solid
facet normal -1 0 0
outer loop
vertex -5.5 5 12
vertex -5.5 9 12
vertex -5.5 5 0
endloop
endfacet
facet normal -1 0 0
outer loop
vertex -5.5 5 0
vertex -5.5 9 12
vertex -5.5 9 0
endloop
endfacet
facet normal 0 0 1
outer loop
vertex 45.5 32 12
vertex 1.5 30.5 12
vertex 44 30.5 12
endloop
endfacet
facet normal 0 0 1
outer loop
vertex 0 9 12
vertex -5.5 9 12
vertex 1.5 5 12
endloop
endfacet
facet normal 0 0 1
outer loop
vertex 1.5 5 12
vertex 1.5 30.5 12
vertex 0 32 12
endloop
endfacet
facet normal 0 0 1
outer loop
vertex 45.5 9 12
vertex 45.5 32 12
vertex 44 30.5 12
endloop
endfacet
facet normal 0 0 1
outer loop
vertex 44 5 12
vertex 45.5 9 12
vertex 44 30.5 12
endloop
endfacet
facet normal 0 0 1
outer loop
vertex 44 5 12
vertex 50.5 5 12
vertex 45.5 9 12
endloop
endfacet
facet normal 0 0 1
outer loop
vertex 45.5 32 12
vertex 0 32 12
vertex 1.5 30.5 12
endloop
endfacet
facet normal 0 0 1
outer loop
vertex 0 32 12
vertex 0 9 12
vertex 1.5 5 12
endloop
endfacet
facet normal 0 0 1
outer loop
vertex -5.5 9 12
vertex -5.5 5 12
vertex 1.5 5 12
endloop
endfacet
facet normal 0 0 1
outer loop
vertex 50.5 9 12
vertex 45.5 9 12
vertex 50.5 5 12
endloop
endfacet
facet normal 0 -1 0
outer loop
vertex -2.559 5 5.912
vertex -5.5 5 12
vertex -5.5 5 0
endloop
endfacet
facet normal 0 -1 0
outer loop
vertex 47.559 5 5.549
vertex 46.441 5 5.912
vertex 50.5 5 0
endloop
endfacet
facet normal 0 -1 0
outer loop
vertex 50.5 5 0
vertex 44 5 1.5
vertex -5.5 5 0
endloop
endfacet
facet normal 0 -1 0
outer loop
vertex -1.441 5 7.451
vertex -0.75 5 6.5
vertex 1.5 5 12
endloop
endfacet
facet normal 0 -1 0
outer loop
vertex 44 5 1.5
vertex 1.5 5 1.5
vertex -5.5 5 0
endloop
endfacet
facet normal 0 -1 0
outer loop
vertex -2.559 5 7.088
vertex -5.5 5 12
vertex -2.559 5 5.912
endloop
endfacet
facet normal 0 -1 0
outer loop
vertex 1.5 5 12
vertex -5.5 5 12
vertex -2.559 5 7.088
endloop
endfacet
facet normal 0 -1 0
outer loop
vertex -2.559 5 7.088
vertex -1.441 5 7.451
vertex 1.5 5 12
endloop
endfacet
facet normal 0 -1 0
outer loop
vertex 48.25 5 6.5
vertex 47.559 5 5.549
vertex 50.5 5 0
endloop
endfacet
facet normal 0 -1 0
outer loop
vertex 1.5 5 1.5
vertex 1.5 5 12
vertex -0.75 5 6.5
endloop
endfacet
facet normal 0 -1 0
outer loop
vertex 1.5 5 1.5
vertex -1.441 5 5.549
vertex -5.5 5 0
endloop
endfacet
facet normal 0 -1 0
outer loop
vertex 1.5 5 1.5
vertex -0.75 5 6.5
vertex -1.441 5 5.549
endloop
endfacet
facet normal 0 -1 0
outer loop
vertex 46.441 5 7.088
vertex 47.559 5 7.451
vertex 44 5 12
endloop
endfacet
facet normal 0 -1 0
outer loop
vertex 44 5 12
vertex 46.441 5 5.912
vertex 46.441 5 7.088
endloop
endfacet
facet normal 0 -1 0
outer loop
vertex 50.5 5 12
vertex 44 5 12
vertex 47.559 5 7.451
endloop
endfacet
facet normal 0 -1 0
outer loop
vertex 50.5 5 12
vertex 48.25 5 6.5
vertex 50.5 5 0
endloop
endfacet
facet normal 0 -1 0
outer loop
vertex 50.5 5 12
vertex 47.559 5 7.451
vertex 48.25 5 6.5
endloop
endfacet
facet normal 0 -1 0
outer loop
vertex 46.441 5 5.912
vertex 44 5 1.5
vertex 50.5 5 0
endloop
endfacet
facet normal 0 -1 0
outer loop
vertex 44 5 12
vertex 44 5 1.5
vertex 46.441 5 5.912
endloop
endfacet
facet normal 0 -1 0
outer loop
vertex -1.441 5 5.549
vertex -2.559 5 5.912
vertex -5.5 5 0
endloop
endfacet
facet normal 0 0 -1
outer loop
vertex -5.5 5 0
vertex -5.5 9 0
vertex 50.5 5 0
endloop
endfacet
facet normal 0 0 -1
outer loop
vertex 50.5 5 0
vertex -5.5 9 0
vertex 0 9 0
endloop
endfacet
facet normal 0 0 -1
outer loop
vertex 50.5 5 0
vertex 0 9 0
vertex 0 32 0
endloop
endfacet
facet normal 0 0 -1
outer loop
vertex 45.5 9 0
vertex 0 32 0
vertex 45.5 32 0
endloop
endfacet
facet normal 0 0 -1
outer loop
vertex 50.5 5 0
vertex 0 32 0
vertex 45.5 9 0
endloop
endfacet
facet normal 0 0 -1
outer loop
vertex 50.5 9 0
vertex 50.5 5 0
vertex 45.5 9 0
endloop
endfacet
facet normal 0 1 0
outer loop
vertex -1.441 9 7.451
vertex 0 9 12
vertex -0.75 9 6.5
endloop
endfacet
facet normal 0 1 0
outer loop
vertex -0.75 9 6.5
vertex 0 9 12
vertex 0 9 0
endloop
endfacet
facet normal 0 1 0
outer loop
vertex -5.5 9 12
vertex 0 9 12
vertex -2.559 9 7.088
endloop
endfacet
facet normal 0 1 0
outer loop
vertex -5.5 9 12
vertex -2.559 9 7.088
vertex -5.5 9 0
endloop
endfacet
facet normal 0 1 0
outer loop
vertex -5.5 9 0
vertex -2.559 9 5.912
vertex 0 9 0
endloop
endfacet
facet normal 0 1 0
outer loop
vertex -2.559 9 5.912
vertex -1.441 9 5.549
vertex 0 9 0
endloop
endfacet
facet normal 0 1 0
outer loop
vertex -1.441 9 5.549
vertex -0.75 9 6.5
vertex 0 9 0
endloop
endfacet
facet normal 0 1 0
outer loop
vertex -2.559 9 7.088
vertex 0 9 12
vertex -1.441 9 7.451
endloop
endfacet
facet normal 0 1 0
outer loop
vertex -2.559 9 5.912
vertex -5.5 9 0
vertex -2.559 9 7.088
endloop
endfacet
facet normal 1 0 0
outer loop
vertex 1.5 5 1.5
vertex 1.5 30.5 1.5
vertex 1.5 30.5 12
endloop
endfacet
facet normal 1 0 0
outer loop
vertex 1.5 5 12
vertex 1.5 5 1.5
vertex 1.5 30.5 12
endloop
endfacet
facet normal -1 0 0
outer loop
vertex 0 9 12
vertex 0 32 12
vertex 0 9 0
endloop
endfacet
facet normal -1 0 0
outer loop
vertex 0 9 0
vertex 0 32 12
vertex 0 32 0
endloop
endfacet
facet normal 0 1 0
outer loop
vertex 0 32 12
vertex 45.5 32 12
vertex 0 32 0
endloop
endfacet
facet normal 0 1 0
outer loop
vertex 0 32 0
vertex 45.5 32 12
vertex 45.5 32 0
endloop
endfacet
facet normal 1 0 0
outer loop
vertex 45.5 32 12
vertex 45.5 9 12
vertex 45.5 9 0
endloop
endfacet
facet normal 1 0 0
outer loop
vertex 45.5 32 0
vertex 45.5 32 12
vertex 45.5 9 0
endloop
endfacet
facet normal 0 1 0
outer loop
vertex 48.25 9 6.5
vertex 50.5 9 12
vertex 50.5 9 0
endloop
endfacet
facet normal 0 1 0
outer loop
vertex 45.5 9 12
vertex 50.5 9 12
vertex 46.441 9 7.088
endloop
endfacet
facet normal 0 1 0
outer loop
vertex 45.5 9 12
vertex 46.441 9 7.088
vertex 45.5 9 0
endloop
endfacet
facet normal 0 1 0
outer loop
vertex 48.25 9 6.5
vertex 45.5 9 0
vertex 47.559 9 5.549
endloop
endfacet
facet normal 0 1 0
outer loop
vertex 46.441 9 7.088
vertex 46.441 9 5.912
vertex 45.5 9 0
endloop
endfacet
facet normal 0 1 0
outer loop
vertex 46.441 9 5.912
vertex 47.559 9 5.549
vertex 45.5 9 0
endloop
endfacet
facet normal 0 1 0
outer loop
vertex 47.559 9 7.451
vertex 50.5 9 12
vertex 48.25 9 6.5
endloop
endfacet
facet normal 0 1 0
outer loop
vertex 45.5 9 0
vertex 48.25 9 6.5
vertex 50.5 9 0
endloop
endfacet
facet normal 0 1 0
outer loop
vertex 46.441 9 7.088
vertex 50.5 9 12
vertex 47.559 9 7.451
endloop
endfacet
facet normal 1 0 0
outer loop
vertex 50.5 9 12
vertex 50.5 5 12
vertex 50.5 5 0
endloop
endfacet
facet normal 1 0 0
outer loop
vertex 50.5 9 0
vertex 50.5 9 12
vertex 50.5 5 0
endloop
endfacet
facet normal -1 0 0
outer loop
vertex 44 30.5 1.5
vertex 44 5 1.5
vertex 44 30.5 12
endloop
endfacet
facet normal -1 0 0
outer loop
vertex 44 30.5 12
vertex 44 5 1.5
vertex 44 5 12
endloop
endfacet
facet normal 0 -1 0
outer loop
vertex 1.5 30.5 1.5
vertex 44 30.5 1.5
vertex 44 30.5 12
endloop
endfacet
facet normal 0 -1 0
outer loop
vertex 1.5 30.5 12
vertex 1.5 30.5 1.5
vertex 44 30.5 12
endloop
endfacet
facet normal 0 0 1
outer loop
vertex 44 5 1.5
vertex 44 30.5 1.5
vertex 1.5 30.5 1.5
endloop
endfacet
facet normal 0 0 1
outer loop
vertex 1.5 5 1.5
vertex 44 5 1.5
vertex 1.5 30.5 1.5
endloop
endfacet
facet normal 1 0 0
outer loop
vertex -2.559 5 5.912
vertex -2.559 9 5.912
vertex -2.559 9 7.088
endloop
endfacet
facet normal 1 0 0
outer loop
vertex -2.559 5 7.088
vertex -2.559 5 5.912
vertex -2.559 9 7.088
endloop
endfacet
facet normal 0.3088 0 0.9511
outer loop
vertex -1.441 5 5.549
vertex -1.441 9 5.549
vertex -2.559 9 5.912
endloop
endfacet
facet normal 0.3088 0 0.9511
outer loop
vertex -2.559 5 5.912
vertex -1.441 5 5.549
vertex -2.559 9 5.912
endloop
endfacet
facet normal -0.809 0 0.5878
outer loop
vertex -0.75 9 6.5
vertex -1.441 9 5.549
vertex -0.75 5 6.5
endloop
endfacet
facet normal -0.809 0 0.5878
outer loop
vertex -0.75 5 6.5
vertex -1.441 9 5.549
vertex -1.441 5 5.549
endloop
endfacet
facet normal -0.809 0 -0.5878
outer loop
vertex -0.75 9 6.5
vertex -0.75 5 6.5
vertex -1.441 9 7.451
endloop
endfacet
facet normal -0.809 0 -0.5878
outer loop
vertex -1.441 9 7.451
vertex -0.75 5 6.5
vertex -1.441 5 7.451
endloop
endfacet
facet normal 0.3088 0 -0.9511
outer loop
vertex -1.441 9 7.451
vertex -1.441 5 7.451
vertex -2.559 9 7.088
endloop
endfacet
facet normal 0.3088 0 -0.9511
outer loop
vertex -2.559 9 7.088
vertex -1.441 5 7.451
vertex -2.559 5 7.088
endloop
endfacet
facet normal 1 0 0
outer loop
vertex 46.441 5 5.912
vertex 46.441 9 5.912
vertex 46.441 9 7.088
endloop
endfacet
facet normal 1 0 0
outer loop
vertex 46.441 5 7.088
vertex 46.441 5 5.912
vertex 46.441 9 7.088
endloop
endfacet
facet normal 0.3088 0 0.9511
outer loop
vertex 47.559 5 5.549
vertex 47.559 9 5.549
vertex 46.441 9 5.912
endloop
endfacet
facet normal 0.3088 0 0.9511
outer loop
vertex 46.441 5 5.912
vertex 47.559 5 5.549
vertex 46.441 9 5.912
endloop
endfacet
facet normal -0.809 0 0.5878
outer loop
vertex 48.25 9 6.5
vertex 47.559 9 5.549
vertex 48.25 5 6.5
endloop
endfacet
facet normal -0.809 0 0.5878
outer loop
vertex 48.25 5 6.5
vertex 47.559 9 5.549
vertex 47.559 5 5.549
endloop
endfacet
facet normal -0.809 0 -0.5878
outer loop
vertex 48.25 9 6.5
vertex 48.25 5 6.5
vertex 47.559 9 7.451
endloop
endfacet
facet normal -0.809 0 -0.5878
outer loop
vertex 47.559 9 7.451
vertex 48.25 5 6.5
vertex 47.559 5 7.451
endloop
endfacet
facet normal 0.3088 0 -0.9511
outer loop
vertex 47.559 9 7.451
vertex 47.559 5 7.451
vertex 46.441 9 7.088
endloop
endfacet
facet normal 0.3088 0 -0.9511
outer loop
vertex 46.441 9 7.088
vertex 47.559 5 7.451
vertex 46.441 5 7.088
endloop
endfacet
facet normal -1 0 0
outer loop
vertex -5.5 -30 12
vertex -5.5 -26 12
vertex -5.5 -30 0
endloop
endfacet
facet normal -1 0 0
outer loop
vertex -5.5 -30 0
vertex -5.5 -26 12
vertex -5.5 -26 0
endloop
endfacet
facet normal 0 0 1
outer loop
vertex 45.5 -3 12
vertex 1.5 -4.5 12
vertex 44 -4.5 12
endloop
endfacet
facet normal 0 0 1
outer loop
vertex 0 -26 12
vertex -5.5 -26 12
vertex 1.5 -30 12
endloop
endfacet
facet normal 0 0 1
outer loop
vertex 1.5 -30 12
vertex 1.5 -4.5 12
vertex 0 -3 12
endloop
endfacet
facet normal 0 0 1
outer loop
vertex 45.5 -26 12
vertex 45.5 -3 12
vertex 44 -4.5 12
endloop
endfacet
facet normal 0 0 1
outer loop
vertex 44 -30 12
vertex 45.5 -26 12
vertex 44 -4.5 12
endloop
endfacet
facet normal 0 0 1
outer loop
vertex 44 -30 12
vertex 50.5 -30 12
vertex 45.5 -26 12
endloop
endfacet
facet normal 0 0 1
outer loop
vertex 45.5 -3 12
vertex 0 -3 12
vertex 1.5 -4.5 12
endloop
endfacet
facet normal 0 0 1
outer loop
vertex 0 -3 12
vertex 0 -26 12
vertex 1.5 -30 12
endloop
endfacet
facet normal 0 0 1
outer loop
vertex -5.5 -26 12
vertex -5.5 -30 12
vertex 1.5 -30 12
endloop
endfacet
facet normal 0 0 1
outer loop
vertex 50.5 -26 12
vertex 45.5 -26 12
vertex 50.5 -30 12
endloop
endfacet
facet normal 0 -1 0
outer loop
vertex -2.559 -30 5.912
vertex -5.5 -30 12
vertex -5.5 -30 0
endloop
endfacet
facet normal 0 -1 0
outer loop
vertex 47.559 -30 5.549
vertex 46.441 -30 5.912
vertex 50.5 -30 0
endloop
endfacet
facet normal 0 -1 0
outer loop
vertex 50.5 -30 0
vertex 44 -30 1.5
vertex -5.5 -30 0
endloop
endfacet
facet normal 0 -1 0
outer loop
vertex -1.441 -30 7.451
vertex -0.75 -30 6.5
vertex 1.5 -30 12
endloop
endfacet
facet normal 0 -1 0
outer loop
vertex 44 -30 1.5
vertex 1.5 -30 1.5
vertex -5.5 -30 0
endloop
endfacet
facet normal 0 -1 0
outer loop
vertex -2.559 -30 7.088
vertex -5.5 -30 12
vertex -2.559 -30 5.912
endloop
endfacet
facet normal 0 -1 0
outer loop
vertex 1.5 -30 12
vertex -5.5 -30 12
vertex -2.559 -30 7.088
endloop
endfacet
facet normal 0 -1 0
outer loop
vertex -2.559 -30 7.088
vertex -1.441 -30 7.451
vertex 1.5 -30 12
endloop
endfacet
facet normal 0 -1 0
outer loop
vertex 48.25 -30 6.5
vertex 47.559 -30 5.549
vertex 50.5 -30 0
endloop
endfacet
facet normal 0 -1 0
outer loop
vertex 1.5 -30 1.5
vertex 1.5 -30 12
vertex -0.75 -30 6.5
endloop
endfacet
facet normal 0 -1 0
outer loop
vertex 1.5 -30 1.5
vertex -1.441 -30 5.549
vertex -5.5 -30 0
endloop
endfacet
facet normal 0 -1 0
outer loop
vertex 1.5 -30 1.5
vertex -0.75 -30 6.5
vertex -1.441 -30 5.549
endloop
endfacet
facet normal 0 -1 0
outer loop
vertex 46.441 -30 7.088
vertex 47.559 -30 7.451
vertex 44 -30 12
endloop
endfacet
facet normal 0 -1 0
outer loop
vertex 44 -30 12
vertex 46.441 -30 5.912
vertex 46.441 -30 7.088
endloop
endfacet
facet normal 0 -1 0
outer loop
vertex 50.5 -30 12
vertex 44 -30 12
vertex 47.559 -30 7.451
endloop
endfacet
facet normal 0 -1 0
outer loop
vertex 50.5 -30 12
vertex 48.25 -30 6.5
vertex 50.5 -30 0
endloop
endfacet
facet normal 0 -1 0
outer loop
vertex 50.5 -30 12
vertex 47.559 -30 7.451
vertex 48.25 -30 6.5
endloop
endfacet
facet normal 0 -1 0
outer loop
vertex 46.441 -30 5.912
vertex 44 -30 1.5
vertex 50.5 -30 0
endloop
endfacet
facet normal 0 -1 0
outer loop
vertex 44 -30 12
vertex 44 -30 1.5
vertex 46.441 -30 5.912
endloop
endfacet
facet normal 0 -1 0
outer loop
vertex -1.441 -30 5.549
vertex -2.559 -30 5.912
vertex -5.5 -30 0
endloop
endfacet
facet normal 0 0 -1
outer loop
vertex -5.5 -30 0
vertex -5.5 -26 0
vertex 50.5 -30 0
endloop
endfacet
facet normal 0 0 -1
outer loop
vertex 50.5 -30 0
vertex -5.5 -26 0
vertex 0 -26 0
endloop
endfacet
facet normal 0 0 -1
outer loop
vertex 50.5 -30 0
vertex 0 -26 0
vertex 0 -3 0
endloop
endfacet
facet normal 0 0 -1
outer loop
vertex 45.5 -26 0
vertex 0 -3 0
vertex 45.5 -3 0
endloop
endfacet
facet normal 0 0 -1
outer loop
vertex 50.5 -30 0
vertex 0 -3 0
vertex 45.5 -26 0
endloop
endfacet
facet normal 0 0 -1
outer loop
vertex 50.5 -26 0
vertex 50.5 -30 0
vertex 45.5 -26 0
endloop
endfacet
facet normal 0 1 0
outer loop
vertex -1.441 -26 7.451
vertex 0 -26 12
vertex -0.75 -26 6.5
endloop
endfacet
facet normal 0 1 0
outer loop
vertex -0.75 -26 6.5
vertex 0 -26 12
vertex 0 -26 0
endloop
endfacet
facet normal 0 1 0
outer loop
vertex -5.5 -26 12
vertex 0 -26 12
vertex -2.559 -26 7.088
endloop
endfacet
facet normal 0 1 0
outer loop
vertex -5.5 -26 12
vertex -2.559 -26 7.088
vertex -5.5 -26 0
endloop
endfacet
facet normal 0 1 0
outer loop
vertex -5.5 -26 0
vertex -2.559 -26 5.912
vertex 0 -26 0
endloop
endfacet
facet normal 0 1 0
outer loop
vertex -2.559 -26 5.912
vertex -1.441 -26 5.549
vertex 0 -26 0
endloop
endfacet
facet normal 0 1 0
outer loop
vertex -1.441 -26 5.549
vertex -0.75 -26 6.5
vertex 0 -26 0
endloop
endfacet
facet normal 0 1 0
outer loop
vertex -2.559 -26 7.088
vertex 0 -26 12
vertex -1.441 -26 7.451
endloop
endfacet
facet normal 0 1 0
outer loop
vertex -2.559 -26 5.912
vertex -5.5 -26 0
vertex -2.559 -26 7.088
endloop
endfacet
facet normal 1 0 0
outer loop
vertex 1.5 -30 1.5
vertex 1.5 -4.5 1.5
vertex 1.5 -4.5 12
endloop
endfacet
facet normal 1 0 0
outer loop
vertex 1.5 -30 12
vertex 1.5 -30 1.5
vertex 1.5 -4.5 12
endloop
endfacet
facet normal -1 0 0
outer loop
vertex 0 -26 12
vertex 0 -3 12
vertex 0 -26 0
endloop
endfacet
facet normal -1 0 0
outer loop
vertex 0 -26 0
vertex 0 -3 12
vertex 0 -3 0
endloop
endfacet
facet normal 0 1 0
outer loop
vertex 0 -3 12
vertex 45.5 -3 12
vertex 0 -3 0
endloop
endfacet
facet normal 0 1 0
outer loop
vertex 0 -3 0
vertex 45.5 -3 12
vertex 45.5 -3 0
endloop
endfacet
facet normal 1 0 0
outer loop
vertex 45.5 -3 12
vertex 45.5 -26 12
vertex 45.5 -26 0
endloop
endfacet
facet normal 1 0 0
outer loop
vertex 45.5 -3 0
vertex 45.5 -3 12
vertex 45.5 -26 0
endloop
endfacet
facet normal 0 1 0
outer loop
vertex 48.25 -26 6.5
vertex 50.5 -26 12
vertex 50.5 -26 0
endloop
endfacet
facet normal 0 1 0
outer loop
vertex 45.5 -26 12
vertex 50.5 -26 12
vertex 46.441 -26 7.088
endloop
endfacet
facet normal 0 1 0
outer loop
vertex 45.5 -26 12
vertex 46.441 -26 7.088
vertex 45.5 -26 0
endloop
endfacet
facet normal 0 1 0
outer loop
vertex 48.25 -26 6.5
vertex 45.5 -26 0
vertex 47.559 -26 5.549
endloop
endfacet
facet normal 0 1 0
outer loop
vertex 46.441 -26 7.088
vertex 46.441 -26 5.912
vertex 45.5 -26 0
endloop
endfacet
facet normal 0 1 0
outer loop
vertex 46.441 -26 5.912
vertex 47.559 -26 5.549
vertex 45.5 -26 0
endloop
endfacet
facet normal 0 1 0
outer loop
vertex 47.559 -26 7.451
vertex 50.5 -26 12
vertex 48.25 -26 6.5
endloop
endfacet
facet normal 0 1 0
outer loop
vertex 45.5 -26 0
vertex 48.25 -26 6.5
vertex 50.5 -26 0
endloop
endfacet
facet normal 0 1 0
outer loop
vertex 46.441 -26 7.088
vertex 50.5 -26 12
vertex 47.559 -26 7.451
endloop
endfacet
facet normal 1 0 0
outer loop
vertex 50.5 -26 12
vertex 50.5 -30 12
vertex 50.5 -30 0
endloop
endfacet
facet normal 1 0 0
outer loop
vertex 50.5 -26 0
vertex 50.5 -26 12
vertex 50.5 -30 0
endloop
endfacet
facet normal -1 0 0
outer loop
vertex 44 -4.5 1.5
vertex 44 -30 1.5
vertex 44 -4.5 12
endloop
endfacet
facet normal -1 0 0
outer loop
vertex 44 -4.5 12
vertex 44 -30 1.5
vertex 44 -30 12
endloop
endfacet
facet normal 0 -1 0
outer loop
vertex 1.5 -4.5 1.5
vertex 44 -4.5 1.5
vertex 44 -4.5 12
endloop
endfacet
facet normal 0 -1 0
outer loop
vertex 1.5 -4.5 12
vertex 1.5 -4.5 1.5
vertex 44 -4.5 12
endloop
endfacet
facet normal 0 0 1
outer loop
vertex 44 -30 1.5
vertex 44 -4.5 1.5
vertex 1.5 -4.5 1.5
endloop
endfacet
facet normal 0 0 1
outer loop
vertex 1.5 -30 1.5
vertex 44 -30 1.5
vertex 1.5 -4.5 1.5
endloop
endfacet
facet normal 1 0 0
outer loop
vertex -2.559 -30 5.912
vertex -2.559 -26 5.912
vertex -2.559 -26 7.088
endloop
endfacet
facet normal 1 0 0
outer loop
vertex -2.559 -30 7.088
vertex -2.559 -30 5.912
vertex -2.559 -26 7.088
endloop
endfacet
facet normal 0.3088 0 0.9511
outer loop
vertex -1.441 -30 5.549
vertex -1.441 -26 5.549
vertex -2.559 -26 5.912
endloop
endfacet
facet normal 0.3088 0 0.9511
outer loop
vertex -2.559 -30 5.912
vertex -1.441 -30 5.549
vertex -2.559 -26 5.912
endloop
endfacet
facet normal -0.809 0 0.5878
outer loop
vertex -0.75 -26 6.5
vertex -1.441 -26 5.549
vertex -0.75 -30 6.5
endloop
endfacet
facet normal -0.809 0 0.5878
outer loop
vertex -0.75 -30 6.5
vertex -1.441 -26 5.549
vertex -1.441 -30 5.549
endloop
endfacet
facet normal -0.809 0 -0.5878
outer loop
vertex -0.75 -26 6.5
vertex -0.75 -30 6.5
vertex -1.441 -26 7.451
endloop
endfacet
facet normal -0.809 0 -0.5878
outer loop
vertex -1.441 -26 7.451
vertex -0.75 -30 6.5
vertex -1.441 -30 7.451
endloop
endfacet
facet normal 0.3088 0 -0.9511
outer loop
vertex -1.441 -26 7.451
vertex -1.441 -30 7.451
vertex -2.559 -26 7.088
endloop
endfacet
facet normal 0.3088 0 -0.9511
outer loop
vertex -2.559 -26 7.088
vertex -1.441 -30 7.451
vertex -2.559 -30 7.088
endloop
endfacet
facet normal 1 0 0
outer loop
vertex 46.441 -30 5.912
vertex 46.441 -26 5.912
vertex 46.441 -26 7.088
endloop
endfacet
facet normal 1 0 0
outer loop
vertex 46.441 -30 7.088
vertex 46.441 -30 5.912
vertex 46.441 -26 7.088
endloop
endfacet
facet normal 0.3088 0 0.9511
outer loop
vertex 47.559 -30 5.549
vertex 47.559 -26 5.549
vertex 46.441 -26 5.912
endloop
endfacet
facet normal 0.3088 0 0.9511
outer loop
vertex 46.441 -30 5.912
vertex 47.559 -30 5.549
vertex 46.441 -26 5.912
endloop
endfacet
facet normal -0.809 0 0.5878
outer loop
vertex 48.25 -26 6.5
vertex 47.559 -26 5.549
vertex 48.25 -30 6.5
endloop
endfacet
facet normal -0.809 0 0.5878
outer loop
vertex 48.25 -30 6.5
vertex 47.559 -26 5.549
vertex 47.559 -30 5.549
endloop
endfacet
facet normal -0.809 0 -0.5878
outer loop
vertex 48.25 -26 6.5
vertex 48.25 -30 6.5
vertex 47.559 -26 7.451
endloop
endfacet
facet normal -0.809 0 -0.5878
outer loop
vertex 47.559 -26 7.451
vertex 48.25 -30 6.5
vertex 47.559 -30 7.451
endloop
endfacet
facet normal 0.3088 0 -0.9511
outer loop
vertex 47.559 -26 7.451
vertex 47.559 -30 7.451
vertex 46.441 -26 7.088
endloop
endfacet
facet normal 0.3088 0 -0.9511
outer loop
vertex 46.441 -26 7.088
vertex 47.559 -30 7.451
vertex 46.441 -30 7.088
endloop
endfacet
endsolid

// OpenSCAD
module top()
{
  translate([-5.5, 0,0])
    cube([56,23,4]);
  cube([45.5,23,27]);
}


module halfbox()
{
  difference() 
  {
    top();
    translate([1.5, 1.5,-4.5])
      cube([42.5,20,30]);
    translate([-7, -4,-1])
      # cube([60,15,30]);
    translate([(45.5-49)/2,16.5,-1])
      cylinder(r=1,h=6);
    translate([(45.5+49)/2,16.5,-1])
      cylinder(r=1,h=6);
  }
}

for (yo = [5,-30])
{
  translate([0,yo,0])
    rotate([-90,0,0]) translate([0,-23,0]) halfbox();
}

// top();
